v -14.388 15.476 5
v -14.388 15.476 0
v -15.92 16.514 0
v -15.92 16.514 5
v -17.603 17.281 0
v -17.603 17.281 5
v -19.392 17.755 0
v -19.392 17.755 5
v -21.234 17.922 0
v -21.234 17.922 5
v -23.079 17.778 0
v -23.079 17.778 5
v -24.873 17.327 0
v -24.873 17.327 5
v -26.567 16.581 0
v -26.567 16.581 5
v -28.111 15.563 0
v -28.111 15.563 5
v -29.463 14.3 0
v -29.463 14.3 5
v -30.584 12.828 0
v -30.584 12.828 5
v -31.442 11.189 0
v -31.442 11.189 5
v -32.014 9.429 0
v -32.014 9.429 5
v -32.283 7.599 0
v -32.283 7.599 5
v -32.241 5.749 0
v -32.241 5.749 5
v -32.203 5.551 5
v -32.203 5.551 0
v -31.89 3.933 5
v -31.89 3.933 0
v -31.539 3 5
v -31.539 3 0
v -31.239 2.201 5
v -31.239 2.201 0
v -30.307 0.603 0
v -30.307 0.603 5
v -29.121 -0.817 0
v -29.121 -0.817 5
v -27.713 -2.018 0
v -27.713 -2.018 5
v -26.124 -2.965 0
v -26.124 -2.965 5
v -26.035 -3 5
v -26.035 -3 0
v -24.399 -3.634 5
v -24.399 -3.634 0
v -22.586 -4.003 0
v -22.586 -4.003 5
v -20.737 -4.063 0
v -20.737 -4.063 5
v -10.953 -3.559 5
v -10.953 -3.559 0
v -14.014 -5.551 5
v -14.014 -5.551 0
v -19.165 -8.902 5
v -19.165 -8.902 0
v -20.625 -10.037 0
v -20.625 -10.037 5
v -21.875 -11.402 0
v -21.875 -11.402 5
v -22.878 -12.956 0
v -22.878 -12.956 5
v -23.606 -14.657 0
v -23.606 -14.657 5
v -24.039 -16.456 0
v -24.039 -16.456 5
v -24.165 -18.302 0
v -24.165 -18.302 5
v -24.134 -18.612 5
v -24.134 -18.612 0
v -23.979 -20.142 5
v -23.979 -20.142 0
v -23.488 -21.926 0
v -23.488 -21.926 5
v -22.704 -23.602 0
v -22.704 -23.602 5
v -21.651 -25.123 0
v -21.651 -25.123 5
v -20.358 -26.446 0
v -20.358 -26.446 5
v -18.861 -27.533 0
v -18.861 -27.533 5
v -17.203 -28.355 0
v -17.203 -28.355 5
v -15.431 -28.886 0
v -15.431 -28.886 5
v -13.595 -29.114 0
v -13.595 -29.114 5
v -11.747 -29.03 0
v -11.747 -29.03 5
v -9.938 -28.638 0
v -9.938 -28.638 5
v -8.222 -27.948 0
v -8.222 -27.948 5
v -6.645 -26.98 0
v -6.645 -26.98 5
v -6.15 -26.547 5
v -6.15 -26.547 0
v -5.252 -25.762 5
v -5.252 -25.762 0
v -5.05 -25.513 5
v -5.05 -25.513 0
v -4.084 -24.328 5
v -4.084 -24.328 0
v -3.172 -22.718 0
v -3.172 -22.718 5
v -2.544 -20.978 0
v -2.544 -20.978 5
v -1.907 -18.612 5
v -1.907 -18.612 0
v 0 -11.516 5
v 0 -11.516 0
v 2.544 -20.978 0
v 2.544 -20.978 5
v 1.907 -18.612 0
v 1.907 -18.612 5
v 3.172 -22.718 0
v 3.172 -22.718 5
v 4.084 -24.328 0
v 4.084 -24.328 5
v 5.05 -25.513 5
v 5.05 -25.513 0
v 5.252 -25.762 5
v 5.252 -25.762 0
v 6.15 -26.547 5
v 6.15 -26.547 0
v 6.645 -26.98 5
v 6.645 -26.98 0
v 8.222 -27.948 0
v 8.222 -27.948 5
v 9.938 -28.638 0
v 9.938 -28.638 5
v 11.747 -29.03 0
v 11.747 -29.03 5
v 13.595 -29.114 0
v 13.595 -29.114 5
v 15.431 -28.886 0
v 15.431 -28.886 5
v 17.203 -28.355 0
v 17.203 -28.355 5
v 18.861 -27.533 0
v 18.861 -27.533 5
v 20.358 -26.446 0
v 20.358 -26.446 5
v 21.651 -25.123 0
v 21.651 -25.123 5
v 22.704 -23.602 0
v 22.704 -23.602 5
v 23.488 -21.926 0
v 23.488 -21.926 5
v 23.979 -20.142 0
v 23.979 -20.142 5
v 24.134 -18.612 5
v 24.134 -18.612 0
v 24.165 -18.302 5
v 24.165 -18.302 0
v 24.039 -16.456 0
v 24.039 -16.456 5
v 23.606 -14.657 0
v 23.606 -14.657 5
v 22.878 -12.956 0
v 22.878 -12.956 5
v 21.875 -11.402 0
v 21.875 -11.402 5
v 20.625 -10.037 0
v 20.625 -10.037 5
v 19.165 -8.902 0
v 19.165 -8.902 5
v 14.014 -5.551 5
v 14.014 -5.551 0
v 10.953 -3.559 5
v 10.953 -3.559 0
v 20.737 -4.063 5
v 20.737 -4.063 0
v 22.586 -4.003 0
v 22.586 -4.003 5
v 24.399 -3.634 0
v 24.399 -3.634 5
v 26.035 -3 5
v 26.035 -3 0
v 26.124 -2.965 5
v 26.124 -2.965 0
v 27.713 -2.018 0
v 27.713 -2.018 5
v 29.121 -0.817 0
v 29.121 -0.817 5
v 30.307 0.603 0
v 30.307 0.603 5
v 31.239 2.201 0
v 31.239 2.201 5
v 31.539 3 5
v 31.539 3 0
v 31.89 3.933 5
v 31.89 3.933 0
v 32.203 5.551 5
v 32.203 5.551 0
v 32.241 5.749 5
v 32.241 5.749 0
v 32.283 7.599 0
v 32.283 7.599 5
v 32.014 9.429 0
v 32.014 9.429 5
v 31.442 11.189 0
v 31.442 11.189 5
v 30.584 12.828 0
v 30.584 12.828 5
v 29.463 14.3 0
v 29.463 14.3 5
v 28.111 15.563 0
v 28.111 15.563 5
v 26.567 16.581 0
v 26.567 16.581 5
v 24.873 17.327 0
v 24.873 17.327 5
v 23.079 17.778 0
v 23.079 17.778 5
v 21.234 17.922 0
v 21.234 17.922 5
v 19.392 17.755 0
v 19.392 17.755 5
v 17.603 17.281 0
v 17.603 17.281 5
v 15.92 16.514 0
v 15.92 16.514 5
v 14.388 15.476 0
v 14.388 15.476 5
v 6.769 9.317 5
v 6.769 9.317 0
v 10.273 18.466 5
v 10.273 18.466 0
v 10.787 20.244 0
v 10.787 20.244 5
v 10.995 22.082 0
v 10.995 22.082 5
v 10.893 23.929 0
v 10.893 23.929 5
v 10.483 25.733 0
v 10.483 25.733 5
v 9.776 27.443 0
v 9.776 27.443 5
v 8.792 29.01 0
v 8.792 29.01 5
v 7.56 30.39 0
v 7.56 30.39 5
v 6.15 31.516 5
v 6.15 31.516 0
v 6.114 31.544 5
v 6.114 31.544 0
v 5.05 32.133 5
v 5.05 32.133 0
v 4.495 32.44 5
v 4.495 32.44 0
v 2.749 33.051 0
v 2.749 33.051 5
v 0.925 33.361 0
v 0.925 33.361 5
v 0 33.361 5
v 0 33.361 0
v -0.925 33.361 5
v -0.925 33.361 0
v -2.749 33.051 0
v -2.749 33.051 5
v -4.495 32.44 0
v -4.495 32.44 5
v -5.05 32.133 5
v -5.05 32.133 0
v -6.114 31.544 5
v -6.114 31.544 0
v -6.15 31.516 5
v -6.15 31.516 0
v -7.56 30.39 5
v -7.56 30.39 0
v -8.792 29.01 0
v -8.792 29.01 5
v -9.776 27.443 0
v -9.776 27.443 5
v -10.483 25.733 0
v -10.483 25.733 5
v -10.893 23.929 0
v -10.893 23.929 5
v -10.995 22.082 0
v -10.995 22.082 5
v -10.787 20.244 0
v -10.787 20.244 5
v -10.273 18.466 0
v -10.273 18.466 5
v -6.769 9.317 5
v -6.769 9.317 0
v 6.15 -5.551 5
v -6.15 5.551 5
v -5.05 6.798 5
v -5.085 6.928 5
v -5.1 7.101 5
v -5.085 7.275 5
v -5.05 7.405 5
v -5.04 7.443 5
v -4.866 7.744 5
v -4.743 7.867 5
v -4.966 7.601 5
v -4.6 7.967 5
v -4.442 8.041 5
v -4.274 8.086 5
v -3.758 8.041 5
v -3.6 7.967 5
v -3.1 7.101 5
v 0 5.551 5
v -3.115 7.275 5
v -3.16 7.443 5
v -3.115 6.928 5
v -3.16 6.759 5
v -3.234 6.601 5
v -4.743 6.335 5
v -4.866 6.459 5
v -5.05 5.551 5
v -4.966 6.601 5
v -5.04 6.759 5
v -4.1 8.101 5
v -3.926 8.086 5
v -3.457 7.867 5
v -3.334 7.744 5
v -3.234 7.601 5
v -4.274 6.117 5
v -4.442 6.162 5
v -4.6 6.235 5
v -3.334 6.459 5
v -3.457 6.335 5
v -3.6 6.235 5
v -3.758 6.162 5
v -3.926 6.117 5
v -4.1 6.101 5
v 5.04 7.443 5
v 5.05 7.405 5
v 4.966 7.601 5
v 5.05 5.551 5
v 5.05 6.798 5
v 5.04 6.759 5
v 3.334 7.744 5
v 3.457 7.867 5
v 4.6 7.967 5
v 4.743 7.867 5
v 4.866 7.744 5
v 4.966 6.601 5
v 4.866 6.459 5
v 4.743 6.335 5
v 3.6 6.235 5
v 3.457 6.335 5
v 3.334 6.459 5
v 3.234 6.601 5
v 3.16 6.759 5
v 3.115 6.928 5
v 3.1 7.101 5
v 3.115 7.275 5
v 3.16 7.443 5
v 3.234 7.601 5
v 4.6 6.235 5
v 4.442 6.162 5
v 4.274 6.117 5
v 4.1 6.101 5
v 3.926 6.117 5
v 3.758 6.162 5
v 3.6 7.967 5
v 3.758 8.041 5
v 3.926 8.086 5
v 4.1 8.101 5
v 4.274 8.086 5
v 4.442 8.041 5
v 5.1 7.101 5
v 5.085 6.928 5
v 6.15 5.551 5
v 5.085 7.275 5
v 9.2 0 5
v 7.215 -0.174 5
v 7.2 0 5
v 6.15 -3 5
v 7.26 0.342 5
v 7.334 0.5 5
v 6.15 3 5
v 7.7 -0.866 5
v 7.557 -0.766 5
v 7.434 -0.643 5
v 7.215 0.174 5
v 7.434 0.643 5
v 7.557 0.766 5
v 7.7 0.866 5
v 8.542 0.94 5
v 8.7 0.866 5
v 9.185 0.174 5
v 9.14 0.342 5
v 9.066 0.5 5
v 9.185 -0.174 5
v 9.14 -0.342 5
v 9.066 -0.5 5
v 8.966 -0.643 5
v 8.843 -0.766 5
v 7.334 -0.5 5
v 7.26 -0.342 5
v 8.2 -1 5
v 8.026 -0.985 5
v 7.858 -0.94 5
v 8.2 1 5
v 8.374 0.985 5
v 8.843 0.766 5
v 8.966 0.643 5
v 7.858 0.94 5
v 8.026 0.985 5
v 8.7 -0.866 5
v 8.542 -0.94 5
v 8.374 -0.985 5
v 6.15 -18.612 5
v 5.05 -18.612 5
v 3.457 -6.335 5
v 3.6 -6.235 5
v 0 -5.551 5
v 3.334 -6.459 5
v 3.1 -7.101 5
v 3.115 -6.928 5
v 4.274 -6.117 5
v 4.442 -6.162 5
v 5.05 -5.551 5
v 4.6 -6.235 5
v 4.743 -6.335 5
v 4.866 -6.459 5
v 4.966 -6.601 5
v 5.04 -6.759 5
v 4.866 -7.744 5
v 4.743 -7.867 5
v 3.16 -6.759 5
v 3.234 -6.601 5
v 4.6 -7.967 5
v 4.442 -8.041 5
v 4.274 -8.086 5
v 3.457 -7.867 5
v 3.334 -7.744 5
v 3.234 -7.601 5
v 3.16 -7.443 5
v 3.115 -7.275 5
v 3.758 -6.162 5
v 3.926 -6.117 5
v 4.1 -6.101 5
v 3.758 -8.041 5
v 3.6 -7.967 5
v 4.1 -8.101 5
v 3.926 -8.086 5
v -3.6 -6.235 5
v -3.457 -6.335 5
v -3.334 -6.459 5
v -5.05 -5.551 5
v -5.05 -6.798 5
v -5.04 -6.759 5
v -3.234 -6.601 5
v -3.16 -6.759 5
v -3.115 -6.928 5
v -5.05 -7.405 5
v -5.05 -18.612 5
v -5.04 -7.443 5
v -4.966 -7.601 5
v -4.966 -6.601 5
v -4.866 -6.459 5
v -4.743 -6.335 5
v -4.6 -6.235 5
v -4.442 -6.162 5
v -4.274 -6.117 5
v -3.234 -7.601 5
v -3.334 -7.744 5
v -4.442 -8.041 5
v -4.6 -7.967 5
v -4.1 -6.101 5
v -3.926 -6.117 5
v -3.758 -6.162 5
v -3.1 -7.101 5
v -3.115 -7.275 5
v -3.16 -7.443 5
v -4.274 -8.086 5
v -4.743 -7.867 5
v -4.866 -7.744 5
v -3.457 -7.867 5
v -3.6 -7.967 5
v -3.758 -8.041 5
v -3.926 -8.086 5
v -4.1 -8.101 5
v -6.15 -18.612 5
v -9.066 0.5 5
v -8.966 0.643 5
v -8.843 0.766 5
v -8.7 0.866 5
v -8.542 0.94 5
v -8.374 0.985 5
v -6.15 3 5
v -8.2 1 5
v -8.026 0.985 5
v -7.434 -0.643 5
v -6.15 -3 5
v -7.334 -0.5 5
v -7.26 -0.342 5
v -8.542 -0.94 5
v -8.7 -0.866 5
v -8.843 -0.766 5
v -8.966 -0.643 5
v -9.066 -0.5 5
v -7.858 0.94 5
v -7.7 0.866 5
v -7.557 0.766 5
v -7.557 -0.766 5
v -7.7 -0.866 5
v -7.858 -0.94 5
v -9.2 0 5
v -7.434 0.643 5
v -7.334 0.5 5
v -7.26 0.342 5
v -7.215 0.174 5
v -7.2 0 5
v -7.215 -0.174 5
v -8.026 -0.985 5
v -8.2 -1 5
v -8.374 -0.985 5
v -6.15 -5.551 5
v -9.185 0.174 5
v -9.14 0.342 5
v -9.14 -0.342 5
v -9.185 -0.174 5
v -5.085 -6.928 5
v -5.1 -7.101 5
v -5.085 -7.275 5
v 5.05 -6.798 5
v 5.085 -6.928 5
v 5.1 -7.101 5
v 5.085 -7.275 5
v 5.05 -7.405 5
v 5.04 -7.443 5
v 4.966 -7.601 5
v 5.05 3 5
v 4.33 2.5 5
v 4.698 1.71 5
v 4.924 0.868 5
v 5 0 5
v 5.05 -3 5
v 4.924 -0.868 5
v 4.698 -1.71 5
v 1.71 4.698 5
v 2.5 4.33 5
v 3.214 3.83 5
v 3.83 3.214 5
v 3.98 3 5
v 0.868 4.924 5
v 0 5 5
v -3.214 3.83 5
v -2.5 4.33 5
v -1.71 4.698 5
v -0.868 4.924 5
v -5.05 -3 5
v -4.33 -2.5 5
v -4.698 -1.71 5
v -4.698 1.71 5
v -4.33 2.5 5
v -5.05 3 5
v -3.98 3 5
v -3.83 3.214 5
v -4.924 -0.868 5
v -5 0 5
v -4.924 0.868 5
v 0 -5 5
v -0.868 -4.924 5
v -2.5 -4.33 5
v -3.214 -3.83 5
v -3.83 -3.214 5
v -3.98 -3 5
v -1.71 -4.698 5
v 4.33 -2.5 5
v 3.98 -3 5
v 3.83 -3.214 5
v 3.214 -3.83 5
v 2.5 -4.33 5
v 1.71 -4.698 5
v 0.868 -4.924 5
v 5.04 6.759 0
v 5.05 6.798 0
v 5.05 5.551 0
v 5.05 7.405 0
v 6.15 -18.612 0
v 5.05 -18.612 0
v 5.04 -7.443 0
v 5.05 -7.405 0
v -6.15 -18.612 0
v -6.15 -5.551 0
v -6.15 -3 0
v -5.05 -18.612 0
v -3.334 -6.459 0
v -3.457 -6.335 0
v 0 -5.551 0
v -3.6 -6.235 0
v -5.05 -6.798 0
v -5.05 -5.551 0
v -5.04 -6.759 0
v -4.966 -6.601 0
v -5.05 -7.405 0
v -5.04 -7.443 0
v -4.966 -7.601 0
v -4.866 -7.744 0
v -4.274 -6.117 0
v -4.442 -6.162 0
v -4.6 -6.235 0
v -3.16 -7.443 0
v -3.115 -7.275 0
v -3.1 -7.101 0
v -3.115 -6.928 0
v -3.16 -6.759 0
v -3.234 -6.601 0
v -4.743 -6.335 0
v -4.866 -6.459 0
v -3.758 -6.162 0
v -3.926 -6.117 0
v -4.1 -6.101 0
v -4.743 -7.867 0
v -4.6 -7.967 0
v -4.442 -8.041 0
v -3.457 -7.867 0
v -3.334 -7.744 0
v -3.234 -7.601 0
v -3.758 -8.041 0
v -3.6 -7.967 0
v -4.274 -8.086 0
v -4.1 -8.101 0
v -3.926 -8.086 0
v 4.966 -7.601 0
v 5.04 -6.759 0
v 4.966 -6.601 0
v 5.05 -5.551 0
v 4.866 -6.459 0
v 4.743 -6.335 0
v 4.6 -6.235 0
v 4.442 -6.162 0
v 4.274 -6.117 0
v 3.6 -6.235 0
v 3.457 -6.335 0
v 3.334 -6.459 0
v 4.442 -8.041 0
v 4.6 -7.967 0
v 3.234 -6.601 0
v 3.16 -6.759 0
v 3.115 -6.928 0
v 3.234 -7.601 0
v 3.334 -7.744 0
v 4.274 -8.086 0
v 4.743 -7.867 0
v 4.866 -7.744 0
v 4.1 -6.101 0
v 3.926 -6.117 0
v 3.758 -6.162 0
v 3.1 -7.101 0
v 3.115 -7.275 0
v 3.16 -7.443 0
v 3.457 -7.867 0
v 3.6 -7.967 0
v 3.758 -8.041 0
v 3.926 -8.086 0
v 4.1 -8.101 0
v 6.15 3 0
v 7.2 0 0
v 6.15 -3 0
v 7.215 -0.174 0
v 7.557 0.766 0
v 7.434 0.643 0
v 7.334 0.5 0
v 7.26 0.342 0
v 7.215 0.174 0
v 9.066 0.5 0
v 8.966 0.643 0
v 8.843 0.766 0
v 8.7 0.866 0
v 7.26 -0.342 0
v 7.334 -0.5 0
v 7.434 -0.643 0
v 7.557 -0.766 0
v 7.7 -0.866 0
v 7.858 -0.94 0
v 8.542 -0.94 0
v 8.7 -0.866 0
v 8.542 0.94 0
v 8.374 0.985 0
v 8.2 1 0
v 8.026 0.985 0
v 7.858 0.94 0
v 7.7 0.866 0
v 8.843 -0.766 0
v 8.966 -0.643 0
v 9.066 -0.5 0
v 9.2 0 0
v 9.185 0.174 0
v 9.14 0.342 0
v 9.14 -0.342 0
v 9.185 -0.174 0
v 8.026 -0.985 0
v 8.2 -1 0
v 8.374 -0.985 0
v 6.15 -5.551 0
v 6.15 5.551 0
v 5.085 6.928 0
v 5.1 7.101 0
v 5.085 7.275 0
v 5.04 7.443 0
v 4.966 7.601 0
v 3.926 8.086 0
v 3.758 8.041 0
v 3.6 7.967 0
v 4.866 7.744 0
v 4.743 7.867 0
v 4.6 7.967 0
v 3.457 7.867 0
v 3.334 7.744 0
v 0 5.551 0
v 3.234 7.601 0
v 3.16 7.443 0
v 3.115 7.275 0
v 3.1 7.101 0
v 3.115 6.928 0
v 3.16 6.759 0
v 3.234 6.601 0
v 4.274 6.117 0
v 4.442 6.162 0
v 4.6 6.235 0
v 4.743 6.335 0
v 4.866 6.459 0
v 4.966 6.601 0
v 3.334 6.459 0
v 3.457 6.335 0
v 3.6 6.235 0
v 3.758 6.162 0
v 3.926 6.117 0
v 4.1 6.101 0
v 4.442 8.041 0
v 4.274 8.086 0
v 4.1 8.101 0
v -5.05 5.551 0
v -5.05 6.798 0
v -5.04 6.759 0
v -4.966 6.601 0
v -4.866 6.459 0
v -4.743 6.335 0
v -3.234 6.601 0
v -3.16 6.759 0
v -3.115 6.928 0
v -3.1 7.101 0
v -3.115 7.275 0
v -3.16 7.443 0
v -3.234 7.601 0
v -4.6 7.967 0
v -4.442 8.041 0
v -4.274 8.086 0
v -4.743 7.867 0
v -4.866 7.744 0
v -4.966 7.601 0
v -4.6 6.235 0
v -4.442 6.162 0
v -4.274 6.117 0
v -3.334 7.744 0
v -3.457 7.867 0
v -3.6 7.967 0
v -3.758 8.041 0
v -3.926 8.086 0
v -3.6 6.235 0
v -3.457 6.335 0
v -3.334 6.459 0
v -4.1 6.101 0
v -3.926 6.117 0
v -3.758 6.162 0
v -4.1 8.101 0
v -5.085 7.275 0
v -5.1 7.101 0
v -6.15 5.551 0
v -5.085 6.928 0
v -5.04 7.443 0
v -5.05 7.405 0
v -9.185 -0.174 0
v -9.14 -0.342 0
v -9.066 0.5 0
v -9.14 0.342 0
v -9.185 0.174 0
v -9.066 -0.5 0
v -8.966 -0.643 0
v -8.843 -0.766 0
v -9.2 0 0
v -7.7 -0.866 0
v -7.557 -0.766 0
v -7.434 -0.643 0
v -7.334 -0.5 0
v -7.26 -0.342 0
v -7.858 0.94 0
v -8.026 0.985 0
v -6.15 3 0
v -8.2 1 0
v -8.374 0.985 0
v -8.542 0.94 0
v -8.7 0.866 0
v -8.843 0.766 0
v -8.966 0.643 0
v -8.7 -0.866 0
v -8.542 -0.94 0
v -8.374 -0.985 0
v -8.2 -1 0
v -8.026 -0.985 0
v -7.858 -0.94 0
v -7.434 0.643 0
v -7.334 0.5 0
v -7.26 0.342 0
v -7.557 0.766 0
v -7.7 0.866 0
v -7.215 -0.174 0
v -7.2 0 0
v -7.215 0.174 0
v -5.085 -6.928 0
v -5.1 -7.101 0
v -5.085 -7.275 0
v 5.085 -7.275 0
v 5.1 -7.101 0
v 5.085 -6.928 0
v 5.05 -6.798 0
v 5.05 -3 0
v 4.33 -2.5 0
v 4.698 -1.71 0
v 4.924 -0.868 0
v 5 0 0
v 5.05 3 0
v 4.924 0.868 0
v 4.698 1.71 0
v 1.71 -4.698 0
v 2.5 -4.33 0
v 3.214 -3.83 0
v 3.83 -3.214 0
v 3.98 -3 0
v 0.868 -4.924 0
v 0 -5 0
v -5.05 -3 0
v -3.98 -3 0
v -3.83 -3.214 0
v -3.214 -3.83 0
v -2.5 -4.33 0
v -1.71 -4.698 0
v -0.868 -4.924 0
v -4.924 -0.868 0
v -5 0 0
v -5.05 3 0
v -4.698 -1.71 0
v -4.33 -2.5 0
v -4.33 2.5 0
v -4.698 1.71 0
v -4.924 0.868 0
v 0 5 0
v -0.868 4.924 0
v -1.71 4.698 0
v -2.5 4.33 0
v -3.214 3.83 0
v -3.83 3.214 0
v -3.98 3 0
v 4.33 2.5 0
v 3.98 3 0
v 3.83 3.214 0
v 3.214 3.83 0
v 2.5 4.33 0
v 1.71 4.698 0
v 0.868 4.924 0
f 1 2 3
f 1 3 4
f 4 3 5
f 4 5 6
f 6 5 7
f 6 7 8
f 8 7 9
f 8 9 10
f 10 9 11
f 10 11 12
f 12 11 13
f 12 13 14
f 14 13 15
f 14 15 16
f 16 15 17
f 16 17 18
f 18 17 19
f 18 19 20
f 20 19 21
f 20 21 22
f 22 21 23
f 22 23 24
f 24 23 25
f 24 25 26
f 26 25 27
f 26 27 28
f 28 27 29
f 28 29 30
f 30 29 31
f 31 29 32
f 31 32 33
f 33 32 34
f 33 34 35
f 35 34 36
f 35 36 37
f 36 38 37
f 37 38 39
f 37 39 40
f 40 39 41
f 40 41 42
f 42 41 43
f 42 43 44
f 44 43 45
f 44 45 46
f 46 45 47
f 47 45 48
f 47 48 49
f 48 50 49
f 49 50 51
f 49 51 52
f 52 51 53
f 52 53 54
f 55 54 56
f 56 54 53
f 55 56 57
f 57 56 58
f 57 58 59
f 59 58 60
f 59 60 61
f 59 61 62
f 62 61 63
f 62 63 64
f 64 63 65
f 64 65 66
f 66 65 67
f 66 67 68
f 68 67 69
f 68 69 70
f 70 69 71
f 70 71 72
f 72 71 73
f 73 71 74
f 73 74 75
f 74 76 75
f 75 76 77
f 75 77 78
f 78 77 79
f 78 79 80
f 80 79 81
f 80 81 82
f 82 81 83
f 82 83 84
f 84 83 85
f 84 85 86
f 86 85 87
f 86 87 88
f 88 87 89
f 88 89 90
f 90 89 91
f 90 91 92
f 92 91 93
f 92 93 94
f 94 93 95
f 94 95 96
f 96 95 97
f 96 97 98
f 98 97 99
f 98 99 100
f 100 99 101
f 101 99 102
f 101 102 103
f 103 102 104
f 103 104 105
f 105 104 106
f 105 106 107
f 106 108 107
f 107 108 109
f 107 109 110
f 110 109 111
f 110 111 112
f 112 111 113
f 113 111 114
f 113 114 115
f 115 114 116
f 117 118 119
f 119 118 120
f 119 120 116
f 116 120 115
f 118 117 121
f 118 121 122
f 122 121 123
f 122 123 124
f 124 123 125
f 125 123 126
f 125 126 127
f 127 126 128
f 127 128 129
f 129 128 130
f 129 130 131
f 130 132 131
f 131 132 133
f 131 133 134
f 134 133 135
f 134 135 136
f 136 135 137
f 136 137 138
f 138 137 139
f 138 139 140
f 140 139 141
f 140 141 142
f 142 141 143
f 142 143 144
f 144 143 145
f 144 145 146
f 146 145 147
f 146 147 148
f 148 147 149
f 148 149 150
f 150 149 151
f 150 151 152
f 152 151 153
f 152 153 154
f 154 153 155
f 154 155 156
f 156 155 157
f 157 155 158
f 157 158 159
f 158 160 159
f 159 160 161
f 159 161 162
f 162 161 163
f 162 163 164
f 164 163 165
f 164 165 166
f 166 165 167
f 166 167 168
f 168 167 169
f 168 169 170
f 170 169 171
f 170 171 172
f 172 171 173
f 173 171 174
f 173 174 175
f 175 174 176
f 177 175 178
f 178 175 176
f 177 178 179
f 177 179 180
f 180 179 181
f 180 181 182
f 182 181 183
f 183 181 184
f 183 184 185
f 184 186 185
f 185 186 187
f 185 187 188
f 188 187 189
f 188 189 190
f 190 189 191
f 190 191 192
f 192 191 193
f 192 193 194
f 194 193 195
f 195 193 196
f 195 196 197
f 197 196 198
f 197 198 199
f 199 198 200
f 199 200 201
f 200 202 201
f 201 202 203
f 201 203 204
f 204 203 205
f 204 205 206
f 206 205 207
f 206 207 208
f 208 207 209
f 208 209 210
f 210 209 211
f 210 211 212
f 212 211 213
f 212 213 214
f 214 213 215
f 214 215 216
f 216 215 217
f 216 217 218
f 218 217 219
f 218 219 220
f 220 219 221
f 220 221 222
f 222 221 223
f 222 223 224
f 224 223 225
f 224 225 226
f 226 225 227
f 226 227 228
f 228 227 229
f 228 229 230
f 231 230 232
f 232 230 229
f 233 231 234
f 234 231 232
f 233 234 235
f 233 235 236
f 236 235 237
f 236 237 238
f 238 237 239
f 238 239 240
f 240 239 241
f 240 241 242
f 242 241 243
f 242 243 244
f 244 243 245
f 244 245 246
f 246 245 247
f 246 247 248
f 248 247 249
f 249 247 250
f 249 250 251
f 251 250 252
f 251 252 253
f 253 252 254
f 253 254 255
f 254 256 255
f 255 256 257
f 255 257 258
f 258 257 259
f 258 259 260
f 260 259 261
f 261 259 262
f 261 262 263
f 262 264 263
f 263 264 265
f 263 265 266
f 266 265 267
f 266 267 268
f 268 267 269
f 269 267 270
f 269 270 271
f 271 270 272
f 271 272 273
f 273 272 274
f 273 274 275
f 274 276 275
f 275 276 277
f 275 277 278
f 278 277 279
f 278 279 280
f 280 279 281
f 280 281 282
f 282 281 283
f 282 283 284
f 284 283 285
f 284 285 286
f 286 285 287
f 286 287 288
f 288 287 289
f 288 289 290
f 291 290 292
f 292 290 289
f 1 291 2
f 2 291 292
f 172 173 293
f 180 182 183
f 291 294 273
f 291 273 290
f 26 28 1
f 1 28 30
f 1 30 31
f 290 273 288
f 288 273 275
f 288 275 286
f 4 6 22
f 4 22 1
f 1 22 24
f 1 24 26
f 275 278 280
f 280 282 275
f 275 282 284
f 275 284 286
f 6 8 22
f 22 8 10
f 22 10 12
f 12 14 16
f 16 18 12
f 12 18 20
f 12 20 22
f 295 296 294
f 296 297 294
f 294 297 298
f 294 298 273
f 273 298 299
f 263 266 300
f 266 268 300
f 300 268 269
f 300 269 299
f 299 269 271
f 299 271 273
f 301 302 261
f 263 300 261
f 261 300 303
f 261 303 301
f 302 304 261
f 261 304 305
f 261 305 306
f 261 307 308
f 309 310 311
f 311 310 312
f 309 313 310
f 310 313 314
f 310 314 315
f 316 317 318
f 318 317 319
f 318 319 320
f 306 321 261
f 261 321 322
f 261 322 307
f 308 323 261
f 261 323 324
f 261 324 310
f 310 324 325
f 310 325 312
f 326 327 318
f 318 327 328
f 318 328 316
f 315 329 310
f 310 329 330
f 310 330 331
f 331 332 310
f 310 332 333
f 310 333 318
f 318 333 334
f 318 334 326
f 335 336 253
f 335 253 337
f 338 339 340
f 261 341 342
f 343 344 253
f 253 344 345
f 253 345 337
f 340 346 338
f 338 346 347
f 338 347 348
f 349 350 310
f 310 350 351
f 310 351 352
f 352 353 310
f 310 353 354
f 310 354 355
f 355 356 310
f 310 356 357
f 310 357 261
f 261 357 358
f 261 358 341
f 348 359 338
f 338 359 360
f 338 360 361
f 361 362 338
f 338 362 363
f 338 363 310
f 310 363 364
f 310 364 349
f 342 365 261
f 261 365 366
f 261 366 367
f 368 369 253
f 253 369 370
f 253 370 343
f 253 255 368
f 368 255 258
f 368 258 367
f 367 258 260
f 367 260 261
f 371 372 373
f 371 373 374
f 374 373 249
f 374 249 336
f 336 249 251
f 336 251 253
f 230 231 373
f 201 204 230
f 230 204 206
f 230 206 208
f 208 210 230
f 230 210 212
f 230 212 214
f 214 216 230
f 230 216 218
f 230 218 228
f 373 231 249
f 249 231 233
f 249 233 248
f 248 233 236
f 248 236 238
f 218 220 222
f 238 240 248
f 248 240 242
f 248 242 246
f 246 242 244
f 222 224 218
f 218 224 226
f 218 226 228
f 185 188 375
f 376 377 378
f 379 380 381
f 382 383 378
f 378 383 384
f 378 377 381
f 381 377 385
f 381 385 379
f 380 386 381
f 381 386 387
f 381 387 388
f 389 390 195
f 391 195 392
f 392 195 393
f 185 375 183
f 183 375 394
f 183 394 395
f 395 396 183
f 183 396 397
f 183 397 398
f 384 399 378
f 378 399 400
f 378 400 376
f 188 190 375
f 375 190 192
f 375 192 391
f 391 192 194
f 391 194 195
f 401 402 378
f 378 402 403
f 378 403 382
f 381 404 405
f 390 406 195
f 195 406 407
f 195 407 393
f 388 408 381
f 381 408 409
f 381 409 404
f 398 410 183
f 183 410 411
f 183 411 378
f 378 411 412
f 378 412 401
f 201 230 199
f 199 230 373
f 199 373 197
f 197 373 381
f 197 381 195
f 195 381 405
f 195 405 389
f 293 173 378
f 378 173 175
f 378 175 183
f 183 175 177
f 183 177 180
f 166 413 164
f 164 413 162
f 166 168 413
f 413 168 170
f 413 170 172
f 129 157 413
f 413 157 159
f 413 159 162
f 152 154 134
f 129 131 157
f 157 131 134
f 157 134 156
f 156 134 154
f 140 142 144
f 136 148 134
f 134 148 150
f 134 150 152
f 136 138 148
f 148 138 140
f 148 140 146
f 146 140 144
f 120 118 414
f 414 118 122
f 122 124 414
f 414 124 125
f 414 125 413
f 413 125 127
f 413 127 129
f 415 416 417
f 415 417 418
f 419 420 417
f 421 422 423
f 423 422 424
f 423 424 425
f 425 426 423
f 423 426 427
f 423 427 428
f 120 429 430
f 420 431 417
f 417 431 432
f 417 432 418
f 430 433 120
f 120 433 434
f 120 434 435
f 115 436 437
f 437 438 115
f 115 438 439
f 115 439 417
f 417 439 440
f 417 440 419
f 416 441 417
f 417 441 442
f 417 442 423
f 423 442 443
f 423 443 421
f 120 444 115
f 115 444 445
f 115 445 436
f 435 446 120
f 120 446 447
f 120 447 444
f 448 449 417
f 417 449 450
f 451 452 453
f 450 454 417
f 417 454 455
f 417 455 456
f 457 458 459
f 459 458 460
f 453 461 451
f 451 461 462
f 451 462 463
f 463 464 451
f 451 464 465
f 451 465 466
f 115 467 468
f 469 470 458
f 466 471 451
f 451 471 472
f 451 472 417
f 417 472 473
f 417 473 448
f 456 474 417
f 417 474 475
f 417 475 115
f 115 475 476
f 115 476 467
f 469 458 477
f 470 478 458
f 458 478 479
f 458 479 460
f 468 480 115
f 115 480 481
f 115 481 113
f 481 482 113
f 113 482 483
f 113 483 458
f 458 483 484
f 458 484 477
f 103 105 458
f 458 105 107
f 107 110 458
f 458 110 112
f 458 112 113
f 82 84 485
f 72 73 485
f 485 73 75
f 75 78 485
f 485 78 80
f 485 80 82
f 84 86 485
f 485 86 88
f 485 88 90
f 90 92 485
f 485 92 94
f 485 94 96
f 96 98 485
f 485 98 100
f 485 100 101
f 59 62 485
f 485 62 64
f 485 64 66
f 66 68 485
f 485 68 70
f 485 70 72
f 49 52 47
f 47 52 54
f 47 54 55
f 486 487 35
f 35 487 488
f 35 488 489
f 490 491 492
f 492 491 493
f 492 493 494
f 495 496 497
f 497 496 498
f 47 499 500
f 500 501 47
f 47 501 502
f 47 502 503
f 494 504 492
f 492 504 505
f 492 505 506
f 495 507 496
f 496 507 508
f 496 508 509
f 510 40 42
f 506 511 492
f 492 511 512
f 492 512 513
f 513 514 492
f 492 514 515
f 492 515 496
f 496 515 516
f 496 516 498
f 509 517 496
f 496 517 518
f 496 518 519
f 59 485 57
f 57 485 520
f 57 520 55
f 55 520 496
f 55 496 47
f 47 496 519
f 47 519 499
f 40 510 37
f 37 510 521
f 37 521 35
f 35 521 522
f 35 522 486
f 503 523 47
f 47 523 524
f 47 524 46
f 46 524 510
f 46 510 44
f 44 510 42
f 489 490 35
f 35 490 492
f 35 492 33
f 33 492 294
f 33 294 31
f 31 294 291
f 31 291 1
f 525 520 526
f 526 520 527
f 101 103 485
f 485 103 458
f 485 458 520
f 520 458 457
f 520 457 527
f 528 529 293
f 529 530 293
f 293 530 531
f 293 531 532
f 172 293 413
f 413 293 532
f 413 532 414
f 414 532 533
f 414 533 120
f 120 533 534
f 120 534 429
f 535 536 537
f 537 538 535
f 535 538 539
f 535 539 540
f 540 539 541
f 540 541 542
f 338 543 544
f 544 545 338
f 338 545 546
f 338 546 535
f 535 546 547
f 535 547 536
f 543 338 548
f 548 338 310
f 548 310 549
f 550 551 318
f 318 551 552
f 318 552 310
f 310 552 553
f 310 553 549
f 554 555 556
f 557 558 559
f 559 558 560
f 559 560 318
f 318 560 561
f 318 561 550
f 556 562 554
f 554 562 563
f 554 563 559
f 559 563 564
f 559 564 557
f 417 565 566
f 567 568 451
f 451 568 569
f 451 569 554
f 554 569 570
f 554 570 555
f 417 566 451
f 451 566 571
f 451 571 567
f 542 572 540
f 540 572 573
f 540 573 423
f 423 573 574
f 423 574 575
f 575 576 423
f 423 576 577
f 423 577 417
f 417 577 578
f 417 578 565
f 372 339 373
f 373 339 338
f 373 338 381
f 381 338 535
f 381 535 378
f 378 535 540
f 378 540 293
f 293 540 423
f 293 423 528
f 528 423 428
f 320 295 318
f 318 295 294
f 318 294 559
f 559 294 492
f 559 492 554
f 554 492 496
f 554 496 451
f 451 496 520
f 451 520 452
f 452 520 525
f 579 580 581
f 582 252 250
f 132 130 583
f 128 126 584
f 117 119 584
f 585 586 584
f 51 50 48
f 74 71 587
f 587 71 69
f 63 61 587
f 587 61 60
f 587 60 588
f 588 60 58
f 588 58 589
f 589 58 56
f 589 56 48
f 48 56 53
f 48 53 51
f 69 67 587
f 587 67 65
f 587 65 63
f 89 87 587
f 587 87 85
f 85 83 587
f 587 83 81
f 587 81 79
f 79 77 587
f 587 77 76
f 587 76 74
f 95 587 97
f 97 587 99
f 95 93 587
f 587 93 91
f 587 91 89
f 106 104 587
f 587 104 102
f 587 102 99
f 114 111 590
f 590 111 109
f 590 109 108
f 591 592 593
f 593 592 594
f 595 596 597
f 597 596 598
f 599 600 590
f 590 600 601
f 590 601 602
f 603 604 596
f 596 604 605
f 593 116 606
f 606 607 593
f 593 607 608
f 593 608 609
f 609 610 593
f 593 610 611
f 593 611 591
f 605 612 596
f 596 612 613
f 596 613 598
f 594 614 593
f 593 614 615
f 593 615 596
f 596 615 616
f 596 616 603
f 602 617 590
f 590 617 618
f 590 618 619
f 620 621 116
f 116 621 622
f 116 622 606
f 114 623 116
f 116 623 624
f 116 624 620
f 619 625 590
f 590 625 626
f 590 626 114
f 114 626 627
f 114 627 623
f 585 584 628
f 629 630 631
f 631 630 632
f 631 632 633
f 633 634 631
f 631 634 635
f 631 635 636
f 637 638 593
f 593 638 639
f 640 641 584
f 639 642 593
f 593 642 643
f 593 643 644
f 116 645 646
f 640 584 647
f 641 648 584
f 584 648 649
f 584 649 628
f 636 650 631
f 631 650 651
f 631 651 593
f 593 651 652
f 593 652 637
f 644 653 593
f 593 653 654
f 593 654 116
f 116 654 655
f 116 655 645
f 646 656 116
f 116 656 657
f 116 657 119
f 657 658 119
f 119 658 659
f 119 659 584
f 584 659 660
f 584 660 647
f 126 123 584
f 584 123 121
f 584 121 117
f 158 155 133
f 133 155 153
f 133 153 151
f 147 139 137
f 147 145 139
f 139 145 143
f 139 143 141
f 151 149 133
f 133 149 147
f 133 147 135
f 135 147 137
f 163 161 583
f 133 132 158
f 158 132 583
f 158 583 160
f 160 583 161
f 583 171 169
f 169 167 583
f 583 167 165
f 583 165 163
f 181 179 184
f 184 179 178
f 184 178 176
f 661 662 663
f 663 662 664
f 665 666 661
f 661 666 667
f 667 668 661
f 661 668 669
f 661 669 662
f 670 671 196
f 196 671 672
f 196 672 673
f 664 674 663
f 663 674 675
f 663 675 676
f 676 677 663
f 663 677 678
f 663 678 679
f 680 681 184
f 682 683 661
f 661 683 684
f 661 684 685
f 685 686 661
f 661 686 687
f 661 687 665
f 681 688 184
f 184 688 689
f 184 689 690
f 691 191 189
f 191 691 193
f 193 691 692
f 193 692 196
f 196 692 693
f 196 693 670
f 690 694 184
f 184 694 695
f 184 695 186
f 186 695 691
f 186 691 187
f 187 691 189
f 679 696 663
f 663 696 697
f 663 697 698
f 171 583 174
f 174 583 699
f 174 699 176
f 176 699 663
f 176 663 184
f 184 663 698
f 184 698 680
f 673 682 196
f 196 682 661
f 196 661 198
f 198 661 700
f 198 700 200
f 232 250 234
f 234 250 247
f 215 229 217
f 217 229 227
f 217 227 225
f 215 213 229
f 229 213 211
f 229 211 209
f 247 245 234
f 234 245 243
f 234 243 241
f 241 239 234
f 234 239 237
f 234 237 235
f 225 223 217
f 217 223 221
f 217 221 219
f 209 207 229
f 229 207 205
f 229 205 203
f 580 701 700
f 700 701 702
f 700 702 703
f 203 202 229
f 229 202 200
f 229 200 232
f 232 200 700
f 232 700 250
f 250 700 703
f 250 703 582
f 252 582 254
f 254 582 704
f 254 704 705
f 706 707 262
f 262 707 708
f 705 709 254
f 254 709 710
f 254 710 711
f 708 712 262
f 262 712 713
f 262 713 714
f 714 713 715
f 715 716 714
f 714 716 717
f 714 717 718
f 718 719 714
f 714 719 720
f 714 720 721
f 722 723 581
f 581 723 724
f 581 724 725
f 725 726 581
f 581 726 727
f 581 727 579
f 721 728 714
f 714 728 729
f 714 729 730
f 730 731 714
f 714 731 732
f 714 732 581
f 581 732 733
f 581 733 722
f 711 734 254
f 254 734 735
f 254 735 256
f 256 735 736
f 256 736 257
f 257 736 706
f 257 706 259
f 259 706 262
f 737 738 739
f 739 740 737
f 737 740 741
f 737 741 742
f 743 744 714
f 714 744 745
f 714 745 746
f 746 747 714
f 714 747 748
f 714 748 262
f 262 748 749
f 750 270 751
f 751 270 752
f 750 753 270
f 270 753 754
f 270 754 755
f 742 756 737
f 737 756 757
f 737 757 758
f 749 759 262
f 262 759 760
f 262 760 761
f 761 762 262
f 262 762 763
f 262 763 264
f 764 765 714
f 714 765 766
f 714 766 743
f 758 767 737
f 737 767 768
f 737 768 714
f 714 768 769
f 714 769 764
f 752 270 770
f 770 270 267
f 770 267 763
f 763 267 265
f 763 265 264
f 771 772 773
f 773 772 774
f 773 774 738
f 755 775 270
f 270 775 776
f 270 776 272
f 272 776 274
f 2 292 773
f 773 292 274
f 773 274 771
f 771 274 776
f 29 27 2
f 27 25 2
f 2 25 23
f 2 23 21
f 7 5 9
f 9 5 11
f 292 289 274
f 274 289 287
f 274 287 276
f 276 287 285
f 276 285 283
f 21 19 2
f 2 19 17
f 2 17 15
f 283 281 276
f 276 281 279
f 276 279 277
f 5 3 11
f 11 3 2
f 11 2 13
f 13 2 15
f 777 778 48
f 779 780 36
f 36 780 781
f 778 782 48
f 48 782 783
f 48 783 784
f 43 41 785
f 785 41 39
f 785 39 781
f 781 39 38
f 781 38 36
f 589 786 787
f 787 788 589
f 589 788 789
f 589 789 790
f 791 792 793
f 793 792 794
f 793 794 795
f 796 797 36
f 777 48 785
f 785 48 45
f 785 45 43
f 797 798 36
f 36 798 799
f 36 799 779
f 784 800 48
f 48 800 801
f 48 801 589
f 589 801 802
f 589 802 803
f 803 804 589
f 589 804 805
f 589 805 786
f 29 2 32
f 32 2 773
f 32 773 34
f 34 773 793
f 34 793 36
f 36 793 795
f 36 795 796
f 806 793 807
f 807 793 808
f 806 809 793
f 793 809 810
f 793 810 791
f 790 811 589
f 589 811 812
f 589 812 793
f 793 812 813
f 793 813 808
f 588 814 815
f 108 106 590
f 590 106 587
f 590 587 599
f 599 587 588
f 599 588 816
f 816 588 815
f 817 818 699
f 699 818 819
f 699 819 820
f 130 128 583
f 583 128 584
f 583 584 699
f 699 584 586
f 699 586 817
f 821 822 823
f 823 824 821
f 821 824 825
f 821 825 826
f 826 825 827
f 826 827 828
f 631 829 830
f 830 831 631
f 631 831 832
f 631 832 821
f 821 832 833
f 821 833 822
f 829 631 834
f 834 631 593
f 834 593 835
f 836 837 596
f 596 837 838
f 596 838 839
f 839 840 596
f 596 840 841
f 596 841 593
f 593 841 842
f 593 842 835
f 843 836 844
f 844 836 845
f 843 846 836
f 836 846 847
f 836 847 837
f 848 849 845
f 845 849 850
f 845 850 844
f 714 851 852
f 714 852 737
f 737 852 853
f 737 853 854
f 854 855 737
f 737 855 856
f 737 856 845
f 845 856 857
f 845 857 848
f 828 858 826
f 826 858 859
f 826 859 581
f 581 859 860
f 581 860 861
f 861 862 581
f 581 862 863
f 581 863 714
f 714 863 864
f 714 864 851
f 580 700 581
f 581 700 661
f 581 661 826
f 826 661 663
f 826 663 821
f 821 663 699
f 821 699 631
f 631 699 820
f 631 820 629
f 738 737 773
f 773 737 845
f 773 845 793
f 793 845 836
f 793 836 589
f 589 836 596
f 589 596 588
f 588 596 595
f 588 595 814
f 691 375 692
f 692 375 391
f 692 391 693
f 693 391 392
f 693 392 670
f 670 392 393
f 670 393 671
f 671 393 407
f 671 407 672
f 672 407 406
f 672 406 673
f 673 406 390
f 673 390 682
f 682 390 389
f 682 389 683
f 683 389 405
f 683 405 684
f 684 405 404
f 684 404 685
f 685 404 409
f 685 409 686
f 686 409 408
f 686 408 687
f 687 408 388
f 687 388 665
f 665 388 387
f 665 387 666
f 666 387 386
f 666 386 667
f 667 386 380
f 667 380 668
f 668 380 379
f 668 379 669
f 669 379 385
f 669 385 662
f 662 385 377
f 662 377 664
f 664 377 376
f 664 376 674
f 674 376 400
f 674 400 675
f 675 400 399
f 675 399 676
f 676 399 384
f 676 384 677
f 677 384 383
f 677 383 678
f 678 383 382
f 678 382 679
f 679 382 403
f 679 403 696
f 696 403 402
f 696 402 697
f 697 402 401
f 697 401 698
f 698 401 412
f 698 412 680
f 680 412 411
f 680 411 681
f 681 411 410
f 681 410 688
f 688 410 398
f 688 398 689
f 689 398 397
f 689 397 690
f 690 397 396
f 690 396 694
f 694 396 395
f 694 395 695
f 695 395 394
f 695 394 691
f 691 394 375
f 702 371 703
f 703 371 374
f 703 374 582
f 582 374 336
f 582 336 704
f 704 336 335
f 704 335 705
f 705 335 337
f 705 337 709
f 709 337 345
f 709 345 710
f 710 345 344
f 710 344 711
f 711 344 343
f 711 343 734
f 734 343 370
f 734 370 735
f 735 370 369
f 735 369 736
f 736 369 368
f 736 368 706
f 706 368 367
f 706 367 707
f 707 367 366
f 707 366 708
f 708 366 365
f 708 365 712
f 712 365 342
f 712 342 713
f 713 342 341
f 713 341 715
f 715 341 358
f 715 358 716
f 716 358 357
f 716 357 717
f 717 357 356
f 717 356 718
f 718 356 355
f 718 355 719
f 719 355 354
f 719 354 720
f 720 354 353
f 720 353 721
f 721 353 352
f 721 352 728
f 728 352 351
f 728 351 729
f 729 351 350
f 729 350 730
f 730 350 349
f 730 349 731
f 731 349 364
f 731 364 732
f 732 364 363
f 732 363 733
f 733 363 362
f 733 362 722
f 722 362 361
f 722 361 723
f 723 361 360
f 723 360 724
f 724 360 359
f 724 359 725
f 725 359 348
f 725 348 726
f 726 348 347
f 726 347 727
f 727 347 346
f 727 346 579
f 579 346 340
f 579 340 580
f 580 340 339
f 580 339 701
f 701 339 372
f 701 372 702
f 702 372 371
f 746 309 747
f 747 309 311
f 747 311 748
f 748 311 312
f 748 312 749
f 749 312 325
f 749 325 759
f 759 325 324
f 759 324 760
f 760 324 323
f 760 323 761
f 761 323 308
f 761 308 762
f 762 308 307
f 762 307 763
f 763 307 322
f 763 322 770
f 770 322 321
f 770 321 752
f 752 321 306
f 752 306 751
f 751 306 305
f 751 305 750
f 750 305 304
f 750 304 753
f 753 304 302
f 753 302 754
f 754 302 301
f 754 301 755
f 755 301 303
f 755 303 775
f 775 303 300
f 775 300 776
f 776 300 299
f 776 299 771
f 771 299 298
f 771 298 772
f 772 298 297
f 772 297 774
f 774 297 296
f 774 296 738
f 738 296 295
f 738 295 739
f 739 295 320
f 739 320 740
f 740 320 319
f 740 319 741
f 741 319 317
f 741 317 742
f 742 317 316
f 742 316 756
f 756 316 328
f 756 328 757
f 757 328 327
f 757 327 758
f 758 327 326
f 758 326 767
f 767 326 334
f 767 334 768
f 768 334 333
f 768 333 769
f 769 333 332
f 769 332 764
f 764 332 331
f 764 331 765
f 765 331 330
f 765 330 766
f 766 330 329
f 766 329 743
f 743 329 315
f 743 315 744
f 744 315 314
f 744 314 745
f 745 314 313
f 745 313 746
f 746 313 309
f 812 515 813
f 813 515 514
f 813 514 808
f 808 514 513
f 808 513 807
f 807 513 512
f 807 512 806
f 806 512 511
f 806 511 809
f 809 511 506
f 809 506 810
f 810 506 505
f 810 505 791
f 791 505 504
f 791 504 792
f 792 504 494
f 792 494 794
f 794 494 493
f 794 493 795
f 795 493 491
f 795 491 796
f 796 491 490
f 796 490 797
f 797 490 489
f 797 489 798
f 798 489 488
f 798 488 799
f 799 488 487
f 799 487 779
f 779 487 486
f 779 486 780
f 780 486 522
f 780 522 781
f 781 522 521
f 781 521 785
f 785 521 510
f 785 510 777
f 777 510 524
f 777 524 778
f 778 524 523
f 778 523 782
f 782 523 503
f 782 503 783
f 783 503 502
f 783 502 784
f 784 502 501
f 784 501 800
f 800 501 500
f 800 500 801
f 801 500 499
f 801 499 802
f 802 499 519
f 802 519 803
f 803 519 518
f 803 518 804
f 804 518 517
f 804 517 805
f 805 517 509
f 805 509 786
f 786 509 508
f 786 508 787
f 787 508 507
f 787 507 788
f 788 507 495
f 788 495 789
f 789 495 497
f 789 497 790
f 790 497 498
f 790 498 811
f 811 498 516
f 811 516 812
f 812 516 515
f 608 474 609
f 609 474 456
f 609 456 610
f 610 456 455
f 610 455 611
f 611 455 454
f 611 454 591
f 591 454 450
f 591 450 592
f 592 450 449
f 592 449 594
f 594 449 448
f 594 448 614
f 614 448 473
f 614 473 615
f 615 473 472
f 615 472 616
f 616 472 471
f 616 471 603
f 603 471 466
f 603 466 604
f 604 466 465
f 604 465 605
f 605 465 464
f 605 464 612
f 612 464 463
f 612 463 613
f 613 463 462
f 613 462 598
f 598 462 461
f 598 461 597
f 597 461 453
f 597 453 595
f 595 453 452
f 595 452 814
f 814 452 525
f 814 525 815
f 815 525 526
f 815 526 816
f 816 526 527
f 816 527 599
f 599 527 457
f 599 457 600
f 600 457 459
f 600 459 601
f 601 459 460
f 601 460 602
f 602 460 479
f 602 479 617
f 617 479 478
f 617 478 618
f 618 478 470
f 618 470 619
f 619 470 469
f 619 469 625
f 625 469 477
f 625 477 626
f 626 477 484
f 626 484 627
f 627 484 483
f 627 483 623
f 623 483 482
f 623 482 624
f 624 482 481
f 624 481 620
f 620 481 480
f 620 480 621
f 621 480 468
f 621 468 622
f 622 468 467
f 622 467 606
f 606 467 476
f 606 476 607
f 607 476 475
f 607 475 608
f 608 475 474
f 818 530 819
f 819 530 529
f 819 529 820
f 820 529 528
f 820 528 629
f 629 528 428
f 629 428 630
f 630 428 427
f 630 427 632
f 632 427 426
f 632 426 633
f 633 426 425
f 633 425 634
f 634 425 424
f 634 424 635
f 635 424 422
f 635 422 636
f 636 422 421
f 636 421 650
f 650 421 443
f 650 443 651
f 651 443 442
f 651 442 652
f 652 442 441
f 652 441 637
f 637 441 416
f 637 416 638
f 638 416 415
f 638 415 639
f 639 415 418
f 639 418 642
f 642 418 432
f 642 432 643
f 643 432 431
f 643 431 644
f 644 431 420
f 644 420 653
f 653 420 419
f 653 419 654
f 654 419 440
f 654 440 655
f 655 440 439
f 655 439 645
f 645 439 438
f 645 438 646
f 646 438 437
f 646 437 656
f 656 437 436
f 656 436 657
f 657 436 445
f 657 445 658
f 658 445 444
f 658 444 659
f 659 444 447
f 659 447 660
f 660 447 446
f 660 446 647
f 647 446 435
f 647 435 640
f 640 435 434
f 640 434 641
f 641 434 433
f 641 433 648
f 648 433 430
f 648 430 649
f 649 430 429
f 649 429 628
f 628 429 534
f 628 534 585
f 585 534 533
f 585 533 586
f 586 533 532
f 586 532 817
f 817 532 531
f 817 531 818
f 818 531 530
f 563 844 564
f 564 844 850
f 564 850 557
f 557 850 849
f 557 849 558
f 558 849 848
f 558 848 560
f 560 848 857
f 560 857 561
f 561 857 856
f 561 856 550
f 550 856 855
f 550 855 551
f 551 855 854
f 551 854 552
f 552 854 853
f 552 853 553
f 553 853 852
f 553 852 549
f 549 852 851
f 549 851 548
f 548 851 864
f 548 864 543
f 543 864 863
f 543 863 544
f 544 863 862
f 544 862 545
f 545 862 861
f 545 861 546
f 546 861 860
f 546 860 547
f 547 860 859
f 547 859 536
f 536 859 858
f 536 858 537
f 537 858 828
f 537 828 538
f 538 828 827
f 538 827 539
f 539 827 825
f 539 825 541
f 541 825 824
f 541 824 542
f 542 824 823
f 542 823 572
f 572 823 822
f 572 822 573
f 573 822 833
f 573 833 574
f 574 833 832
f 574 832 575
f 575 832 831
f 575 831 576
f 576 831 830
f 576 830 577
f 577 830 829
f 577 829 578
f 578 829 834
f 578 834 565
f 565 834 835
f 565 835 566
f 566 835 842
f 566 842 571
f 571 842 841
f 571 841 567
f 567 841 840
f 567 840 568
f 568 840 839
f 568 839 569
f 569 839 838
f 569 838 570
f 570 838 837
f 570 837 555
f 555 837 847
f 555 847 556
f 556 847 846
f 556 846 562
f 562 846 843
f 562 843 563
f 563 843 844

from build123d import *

# Parameters (mm, degrees)
ESTRUSIONE_ESTRUSIONE1_DEPTH = 5
SCHIZZO2_R                   = 1
TAGLIO_ESTRUSIONE1_DEPTH     = 5
SCHIZZO1_4_R                 = 5
ESTRUSIONE_ESTRUSIONE2_DEPTH = 5
SCHIZZO1_5_R                 = 5
TAGLIO_ESTRUSIONE2_DEPTH     = 5


with BuildPart() as part:
    # Schizzo1 → Estrusione-Estrusione1 (new body)
    with BuildSketch(Plane.XY):
        with BuildLine():
            Line((-10.272621339, 18.466394679), (-6.769041701, 9.316786616))
            Line((-6.769041701, 9.316786616), (-14.388170422, 15.476273245))
            ThreePointArc((-14.388170422, 15.476273245), (-31.765287644, 10.321167612), (-20.736999563, -4.063413683))
            Line((-20.736999563, -4.063413683), (-10.952539543, -3.558695821))
            Line((-10.952539543, -3.558695821), (-19.164999696, -8.901531795))
            ThreePointArc((-19.164999696, -8.901531795), (-19.632027427, -27.021167612), (-2.543549215, -20.977722446))
            Line((-2.543549215, -20.977722446), (0, -11.516181589))
            Line((0, -11.516181589), (2.543549215, -20.977722446))
            ThreePointArc((2.543549215, -20.977722446), (19.632027427, -27.021167612), (19.164999696, -8.901531795))
            Line((19.164999696, -8.901531795), (10.952539543, -3.558695821))
            Line((10.952539543, -3.558695821), (20.736999563, -4.063413683))
            ThreePointArc((20.736999563, -4.063413683), (31.765287644, 10.321167612), (14.388170422, 15.476273245))
            Line((14.388170422, 15.476273245), (6.769041701, 9.316786616))
            Line((6.769041701, 9.316786616), (10.272621339, 18.466394679))
            ThreePointArc((10.272621339, 18.466394679), (0, 33.4), (-10.272621339, 18.466394679))
        make_face()
    extrude(amount=ESTRUSIONE_ESTRUSIONE1_DEPTH)

    # Schizzo2 → Taglio-Estrusione1 (cut)
    with BuildSketch(Plane.XY.offset(5)):
        with Locations((8.2, 0)):
            Circle(SCHIZZO2_R)
        with Locations((4.1, -7.101408311)):
            Circle(SCHIZZO2_R)
        with Locations((-4.1, -7.101408311)):
            Circle(SCHIZZO2_R)
        with Locations((-8.2, 0)):
            Circle(SCHIZZO2_R)
        with Locations((-4.1, 7.101408311)):
            Circle(SCHIZZO2_R)
        with Locations((4.1, 7.101408311)):
            Circle(SCHIZZO2_R)
    extrude(amount=-TAGLIO_ESTRUSIONE1_DEPTH, mode=Mode.SUBTRACT)

    # Schizzo1<4> → Estrusione-Estrusione2 (add)
    with BuildSketch(Plane.XY):
        Circle(SCHIZZO1_4_R)
    extrude(amount=ESTRUSIONE_ESTRUSIONE2_DEPTH)

    # Schizzo1<5> → Taglio-Estrusione2 (cut)
    with BuildSketch(Plane.XY):
        Circle(SCHIZZO1_5_R)
    extrude(amount=TAGLIO_ESTRUSIONE2_DEPTH, mode=Mode.SUBTRACT)


solid = part.part
